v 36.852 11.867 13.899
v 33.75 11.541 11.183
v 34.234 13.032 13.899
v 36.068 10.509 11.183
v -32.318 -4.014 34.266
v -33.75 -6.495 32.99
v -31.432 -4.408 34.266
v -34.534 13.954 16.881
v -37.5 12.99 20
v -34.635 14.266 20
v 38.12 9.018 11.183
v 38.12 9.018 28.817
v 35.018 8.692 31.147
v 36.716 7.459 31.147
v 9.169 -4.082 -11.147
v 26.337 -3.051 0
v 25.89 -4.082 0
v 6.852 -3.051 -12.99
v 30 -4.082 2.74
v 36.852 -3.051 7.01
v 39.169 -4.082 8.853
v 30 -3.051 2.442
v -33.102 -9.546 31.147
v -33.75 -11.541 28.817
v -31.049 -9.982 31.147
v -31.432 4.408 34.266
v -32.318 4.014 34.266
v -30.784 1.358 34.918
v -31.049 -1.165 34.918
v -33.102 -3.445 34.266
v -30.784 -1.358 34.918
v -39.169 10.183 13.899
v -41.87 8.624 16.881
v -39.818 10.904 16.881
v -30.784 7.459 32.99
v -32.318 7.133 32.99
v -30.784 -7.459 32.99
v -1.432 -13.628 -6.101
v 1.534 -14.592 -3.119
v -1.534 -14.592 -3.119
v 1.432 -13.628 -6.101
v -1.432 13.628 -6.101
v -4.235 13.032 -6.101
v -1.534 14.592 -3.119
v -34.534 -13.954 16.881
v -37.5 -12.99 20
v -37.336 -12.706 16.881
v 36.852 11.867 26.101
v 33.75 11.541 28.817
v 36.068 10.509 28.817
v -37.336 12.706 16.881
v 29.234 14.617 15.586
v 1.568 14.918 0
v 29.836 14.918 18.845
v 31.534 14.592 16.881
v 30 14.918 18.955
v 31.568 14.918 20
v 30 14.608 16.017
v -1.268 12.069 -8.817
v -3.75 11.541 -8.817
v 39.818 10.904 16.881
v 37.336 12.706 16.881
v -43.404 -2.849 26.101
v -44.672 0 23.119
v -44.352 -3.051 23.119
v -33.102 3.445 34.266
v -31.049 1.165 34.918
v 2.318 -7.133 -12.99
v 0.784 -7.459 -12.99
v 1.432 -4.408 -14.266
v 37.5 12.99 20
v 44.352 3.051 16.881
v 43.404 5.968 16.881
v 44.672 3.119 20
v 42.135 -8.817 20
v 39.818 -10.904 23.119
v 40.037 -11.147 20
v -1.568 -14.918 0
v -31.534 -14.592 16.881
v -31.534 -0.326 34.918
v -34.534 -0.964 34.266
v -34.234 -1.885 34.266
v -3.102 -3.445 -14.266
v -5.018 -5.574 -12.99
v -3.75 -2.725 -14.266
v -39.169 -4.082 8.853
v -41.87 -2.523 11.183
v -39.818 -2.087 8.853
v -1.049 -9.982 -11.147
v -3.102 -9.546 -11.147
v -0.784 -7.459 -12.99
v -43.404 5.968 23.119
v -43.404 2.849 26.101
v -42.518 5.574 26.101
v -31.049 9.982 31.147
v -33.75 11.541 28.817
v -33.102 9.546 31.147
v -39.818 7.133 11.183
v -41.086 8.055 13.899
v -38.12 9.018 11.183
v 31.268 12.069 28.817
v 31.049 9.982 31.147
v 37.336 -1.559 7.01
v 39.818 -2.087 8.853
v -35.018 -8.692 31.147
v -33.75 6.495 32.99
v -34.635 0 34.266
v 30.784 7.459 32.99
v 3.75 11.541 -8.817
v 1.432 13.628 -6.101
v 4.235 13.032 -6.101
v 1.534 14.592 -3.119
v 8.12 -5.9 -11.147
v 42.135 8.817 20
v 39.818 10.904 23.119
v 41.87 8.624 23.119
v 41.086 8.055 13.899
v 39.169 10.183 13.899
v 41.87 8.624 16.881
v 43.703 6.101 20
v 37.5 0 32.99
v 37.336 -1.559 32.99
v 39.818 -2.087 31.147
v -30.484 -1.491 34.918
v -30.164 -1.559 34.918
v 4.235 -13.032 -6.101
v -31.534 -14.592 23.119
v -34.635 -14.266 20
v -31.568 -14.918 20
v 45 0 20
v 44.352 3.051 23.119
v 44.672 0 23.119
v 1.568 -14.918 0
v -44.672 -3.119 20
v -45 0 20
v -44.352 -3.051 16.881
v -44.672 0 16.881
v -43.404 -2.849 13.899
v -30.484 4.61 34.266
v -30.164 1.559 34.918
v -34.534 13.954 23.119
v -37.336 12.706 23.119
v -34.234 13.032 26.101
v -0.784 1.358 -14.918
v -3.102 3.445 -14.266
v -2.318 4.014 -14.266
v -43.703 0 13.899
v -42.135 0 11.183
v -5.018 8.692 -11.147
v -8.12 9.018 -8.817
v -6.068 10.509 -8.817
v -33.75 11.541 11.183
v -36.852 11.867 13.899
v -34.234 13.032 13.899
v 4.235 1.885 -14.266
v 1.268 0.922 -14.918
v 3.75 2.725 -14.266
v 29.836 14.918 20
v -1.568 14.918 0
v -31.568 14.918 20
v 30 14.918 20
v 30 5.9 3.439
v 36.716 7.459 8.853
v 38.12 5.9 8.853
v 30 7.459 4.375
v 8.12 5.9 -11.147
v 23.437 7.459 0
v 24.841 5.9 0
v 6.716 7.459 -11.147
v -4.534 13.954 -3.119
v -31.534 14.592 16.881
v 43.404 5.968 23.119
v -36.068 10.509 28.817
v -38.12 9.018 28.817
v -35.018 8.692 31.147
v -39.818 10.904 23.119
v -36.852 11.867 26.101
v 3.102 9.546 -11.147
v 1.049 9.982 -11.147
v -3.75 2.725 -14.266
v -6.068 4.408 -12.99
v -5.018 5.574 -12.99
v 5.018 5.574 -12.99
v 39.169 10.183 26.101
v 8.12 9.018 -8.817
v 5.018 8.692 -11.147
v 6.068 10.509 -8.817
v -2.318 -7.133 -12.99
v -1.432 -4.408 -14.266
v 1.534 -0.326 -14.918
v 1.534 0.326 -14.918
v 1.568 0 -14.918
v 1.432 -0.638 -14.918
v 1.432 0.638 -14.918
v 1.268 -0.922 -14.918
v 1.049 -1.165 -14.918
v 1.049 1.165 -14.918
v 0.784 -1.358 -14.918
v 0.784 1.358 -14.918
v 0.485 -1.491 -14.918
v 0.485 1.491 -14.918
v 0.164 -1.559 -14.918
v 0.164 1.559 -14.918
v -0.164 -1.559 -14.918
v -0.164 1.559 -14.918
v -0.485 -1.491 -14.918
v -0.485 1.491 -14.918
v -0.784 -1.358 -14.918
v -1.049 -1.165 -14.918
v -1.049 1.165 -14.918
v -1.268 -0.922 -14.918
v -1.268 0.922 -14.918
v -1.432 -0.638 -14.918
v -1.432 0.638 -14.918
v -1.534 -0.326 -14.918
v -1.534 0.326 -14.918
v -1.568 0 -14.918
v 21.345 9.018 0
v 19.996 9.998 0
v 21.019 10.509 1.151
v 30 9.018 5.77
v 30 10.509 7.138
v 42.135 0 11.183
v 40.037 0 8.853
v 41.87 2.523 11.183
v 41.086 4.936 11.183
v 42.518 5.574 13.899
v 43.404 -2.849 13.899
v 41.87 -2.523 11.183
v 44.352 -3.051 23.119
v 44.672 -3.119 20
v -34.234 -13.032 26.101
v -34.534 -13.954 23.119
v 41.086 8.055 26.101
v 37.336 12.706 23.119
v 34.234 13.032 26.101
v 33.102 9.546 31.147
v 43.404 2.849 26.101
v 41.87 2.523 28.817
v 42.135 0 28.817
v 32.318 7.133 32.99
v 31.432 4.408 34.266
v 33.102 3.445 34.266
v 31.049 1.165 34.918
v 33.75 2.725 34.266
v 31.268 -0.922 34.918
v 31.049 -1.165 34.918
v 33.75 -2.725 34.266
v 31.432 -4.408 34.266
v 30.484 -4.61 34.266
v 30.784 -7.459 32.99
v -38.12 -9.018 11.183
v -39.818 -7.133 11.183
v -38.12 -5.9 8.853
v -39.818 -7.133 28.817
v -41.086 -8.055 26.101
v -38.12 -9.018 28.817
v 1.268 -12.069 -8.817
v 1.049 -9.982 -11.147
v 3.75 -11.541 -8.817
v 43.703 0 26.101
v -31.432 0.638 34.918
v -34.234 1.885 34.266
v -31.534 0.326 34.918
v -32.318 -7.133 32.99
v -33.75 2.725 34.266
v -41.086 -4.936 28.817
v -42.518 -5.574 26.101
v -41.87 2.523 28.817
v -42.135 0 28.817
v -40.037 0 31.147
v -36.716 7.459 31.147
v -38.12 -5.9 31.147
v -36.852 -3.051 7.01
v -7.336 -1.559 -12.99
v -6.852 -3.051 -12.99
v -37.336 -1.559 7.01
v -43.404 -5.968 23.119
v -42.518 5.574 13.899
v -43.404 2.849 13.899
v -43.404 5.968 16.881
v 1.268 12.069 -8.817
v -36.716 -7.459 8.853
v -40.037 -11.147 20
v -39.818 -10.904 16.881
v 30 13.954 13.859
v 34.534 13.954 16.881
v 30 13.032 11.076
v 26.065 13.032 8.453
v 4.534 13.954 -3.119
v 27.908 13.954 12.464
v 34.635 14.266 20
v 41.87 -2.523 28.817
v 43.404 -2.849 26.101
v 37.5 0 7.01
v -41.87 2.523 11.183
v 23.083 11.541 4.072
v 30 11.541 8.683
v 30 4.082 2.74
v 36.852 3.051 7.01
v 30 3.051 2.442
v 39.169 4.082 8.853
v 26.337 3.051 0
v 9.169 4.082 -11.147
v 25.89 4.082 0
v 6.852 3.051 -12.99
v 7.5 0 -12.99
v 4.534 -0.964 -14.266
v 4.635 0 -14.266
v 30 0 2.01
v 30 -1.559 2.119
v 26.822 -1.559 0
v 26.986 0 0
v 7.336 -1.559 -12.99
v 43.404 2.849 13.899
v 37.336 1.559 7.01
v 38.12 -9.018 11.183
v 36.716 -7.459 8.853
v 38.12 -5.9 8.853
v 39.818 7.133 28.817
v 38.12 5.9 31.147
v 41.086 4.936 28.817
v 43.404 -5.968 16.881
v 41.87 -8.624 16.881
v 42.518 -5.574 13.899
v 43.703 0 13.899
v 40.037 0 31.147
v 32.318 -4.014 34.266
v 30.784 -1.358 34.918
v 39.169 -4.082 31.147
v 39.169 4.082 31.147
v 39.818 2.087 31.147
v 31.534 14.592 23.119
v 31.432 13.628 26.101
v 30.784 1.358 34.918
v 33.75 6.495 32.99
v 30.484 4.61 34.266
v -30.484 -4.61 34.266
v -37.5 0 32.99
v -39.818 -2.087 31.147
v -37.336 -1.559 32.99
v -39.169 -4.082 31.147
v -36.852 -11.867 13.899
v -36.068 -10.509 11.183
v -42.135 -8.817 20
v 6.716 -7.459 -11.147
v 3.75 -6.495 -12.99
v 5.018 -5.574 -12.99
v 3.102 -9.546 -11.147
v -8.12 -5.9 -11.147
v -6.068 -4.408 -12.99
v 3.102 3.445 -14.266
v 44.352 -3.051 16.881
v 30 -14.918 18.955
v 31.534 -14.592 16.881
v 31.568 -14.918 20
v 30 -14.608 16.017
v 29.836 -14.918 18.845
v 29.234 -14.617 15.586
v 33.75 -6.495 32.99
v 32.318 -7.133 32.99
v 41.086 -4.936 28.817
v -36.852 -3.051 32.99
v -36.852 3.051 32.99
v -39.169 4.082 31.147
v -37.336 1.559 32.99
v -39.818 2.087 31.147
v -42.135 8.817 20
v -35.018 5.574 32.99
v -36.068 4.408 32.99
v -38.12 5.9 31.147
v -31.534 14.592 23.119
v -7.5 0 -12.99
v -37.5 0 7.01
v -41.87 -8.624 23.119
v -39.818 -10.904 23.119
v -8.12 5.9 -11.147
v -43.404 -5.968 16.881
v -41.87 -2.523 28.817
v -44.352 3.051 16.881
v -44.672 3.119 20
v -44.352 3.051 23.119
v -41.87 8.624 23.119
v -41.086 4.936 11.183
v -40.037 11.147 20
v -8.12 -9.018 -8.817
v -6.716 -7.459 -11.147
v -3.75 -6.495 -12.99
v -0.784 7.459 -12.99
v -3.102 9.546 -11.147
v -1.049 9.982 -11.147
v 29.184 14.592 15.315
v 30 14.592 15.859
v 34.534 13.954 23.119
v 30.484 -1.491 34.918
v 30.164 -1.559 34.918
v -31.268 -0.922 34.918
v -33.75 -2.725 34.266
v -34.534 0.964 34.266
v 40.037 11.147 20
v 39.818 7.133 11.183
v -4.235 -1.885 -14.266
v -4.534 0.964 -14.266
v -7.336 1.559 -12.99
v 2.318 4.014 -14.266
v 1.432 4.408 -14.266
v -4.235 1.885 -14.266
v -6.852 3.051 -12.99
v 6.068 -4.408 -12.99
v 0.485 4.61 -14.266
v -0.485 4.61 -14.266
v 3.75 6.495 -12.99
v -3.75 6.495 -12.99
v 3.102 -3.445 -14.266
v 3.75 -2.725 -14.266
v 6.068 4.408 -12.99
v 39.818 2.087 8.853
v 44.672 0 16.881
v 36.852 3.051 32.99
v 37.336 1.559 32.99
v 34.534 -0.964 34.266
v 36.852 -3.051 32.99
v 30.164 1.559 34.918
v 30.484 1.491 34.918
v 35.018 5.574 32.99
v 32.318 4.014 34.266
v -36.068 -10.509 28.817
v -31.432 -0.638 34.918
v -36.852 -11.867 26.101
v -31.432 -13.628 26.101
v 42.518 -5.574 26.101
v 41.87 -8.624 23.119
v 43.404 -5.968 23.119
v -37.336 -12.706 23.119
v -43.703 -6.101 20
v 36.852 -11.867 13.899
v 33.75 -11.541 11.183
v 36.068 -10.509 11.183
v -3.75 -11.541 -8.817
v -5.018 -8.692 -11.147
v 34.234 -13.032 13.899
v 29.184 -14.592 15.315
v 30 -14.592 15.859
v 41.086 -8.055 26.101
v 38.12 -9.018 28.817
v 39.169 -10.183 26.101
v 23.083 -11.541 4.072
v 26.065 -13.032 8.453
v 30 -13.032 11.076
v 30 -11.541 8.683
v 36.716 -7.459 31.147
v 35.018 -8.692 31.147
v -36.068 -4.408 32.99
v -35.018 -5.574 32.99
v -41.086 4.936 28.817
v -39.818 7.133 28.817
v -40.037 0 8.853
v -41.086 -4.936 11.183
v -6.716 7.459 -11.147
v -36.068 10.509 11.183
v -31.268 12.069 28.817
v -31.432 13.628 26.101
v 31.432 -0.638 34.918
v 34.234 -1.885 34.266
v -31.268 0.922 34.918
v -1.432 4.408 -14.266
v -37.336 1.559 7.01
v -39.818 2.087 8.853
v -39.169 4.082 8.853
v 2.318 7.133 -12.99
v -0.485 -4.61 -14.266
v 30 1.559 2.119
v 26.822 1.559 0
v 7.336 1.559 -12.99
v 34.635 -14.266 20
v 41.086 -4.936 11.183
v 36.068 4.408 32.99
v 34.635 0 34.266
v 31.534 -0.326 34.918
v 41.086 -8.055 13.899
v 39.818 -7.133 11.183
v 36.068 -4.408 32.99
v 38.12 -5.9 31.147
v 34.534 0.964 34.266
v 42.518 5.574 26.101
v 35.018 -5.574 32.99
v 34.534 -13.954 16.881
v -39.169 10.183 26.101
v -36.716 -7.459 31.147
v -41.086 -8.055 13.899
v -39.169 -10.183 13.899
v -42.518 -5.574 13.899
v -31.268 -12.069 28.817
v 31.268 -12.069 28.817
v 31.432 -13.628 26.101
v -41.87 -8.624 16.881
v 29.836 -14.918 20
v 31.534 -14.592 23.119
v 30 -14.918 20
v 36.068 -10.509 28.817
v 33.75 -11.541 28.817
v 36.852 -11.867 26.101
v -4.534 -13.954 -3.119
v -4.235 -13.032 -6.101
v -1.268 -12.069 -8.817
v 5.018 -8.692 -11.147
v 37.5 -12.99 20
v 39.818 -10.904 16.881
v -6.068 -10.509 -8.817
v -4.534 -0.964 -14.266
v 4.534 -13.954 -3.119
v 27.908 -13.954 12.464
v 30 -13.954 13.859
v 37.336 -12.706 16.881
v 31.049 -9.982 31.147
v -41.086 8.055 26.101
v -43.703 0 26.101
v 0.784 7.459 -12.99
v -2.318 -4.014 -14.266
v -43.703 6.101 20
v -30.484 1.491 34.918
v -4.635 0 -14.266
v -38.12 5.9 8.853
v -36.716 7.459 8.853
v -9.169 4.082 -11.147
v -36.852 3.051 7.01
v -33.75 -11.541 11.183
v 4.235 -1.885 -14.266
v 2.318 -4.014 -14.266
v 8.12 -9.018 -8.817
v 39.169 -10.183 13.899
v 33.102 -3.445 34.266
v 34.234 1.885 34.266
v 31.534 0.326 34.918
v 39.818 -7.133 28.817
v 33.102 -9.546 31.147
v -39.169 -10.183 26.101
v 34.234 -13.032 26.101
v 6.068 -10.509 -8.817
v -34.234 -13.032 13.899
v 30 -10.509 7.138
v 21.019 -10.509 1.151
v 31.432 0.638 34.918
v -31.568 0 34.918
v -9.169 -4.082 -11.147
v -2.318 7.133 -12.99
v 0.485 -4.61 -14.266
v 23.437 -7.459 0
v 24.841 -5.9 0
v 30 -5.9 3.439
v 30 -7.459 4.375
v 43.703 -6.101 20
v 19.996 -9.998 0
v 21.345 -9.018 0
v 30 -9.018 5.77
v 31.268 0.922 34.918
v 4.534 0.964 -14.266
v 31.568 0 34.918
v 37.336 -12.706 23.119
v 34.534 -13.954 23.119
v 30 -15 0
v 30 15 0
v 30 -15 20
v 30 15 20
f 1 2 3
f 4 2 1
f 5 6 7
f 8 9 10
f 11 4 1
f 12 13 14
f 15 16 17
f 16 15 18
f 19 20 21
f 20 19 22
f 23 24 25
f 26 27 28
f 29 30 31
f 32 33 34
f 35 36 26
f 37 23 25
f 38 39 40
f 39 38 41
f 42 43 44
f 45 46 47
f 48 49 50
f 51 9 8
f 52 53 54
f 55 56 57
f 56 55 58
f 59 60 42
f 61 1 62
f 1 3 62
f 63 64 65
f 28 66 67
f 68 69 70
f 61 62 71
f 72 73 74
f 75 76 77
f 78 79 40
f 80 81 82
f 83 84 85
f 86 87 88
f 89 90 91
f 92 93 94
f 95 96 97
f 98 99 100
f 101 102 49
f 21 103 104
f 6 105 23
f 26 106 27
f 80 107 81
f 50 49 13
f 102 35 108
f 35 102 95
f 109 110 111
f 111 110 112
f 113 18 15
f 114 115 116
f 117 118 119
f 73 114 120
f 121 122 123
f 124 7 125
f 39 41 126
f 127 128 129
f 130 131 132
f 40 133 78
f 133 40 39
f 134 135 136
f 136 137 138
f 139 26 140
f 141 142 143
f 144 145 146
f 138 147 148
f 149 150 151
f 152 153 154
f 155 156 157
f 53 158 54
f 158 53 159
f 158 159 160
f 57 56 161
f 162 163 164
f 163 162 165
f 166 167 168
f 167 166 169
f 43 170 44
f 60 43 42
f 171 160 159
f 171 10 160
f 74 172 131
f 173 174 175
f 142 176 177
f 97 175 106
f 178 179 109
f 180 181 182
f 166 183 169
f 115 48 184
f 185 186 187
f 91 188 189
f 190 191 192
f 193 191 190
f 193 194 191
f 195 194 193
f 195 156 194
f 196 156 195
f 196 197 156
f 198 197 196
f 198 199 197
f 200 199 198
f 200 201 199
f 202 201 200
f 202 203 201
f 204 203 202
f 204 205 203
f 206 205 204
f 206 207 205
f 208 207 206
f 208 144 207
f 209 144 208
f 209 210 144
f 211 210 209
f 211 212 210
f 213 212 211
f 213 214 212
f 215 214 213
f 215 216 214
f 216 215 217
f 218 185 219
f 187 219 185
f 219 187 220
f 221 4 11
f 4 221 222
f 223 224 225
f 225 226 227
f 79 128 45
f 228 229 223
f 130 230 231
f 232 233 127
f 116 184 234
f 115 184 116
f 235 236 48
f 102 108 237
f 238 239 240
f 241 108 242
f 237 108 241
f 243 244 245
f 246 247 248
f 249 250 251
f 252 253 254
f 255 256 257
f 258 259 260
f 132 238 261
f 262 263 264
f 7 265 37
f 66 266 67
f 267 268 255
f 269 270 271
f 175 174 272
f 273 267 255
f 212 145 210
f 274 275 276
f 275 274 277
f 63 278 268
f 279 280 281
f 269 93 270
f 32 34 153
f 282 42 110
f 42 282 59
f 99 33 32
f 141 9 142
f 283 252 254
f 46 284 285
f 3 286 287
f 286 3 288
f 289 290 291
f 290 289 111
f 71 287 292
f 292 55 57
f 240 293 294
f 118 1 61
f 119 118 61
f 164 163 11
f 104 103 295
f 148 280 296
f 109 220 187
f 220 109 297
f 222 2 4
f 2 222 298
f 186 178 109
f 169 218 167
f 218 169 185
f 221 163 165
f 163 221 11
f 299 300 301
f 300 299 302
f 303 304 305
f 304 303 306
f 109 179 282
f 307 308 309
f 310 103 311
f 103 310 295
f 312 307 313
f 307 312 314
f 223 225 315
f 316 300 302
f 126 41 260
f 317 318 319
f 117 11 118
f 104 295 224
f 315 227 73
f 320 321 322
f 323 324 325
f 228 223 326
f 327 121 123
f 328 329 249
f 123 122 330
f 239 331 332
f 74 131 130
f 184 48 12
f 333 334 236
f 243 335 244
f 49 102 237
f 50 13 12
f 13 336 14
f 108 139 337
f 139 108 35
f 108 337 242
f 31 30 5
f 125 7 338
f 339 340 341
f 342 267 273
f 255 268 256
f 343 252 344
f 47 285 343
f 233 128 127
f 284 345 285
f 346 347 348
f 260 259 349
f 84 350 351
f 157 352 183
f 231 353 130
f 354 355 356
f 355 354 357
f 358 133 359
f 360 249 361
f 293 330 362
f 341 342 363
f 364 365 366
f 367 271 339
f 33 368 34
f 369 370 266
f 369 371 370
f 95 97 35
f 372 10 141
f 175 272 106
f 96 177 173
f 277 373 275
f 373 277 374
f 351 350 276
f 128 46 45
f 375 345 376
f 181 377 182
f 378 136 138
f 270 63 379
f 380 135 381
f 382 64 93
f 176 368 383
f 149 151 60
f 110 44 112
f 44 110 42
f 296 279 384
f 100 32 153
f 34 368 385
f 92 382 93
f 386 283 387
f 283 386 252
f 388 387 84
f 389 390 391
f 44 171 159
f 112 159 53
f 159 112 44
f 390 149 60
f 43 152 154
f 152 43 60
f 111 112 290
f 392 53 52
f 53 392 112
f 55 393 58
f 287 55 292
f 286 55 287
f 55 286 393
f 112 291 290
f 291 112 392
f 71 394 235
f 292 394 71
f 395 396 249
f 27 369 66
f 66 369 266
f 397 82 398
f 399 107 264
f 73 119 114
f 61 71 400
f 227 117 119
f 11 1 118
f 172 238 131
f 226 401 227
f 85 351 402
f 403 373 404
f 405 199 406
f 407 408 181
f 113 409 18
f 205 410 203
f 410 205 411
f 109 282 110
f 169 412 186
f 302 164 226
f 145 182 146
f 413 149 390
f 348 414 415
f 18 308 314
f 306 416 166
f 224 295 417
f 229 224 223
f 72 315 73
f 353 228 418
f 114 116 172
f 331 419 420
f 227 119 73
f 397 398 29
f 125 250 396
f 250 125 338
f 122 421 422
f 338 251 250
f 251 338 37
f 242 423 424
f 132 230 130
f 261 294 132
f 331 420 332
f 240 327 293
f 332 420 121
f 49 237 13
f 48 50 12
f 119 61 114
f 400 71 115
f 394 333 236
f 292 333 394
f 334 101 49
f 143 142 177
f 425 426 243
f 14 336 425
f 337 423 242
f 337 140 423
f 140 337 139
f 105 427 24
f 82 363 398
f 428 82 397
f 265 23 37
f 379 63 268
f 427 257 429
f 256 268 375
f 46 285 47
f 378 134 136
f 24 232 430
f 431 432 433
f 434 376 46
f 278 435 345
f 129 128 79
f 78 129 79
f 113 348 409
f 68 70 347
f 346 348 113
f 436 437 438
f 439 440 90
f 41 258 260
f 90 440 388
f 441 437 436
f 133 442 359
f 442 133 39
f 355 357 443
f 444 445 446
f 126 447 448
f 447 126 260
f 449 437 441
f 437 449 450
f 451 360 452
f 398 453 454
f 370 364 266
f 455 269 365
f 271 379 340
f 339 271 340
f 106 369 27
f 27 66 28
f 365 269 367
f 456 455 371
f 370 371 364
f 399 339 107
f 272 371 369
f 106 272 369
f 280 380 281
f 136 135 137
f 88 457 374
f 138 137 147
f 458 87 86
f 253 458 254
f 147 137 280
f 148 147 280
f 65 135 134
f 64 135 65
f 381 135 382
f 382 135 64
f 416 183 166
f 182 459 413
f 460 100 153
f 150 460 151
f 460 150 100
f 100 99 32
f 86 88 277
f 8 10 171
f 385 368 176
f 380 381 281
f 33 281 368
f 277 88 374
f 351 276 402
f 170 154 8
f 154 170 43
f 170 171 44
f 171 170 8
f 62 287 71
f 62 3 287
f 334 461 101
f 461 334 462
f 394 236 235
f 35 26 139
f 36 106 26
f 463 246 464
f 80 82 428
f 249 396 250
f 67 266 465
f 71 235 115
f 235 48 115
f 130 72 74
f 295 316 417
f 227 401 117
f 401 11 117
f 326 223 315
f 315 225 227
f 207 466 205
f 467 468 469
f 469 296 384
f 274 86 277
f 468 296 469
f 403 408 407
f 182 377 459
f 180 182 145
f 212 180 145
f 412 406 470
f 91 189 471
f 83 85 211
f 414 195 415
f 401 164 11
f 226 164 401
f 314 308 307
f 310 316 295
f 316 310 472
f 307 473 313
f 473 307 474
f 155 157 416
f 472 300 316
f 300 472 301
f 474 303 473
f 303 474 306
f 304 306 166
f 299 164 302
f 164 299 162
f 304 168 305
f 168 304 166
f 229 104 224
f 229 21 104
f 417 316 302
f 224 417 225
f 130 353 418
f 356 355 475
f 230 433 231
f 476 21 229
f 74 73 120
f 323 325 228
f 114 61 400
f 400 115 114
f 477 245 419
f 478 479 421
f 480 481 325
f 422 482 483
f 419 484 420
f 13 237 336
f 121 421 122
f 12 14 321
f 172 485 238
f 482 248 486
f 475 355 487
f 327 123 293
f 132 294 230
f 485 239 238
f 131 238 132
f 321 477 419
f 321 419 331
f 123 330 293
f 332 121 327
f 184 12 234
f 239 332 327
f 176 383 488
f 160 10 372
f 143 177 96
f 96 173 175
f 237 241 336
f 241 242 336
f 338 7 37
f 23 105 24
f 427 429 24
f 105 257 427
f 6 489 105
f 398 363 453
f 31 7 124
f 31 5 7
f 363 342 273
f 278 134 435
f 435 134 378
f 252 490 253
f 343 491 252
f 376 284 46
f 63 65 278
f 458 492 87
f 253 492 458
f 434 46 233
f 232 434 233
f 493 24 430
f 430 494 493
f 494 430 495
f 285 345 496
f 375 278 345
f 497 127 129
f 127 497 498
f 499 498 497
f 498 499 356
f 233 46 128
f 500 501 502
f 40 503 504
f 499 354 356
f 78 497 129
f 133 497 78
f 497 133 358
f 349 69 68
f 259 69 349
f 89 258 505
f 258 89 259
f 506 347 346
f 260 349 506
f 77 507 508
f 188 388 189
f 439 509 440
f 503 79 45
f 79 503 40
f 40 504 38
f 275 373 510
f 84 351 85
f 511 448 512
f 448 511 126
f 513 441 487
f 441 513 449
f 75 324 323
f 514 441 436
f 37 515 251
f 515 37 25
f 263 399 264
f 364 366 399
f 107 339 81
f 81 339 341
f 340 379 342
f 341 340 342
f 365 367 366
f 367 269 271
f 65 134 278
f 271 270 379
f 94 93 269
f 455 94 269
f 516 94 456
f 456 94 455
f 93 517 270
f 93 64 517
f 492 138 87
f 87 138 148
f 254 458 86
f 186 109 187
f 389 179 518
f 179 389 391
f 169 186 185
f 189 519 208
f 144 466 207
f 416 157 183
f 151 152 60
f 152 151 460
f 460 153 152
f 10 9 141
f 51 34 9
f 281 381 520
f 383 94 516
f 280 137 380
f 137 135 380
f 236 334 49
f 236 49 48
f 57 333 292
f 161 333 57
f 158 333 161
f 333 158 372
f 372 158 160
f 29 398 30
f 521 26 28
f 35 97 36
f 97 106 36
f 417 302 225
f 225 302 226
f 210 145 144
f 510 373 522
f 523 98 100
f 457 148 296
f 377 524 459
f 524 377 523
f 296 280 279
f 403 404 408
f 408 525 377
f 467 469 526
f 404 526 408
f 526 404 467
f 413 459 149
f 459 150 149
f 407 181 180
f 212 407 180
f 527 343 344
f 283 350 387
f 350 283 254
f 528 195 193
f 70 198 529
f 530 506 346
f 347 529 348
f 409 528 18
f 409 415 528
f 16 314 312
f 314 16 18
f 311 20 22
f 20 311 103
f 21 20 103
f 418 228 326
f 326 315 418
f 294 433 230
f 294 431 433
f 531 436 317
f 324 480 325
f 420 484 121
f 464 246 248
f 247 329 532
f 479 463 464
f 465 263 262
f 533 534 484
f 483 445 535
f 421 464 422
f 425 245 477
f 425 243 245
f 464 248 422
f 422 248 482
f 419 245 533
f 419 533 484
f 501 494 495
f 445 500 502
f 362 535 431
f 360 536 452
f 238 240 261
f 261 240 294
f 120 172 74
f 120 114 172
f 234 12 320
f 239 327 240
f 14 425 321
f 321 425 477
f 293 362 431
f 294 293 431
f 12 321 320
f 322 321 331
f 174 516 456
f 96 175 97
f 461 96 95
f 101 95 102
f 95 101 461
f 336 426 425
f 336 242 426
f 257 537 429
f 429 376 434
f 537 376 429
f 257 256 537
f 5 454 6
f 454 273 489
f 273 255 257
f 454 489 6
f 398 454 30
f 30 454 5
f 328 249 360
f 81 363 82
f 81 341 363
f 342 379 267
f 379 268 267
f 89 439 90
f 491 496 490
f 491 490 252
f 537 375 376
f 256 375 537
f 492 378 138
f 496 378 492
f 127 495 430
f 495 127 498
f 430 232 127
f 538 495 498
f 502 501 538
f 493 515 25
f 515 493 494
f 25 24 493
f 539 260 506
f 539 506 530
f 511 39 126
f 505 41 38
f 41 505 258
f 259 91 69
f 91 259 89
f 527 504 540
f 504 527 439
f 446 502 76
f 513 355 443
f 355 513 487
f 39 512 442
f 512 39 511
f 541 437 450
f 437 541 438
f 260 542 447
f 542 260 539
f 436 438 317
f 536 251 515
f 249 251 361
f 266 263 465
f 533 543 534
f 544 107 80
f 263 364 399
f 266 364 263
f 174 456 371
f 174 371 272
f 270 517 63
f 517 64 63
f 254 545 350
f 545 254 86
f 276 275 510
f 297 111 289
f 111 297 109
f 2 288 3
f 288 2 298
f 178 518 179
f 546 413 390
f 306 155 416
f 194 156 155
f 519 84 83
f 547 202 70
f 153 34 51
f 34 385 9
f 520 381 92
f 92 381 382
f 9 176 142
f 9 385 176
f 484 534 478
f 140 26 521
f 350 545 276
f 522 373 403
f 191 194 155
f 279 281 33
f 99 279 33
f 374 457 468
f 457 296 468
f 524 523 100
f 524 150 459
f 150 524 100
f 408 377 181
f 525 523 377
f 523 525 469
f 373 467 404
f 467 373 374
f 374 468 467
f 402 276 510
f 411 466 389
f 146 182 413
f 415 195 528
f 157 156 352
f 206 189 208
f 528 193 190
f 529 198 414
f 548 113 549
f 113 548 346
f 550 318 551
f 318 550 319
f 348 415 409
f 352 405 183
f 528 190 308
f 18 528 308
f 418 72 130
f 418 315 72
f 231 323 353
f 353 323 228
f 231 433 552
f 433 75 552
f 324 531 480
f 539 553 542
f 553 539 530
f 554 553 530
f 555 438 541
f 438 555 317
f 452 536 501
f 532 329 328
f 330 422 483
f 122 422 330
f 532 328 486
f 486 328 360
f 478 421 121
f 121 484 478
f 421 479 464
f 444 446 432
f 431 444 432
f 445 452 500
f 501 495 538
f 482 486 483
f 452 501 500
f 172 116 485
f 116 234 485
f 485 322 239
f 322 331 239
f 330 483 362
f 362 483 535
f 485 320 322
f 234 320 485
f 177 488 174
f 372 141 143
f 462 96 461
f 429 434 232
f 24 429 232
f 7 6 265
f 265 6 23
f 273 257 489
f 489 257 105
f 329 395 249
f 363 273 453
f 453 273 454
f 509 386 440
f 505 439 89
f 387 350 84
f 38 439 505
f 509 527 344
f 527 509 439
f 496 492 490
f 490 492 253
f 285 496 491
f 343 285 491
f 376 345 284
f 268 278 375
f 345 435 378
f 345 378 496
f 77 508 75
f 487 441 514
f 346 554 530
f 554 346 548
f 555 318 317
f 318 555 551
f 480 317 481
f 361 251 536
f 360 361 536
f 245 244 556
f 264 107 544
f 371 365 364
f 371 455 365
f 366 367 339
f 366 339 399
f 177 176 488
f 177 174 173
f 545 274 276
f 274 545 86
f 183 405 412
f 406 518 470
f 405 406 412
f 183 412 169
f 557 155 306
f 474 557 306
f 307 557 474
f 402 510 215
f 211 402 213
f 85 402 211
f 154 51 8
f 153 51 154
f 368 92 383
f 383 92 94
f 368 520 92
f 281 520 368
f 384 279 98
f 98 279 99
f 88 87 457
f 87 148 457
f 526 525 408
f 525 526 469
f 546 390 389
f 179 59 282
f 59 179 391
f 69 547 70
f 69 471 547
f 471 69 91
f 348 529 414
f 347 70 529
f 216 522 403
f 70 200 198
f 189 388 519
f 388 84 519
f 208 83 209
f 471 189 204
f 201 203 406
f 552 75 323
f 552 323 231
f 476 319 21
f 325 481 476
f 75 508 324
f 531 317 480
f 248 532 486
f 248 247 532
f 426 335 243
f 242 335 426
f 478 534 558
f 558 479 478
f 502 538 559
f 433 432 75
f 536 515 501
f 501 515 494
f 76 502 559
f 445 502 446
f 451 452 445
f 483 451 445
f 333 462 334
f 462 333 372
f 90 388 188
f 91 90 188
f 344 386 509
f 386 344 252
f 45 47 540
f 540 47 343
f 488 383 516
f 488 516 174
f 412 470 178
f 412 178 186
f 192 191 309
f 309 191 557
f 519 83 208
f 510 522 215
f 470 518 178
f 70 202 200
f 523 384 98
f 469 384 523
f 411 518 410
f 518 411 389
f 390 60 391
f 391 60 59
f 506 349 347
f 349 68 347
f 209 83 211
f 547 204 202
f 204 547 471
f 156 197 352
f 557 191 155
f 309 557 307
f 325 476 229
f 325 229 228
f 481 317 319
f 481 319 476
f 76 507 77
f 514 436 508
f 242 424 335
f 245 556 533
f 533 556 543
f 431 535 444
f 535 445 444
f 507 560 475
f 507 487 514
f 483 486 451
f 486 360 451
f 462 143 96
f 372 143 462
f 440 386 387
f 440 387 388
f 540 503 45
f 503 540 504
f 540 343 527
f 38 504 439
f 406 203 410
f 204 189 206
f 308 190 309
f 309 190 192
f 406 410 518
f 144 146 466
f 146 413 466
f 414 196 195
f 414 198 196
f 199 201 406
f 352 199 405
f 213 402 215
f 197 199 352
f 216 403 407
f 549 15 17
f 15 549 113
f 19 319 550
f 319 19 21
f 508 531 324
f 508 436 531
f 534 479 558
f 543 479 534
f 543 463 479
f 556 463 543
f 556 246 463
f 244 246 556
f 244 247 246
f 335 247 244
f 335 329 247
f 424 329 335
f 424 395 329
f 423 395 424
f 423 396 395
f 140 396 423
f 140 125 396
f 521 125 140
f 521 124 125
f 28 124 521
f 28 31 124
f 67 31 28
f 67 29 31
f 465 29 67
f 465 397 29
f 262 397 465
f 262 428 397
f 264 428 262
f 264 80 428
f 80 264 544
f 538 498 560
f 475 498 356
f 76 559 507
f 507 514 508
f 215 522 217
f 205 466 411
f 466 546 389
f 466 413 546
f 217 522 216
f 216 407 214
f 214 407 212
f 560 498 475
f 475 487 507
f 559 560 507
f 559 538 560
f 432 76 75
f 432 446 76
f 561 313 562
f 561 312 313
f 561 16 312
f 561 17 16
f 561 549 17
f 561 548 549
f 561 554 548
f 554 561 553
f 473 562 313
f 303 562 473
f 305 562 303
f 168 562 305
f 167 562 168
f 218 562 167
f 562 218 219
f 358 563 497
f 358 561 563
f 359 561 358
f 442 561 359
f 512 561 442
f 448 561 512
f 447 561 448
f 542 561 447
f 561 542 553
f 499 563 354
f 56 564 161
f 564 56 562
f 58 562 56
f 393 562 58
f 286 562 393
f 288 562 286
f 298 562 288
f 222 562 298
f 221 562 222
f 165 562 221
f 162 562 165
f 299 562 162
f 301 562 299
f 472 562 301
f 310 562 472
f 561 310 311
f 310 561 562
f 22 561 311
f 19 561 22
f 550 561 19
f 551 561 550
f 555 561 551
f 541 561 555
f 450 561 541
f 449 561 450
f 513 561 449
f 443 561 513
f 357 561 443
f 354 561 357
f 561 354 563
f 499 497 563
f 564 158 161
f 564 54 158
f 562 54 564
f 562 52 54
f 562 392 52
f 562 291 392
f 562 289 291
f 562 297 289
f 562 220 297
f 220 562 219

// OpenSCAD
module t(height = 10, width = 50, depth = 20, rounding = 2) {
  hull() {
    translate([0, 0, 0])
    sphere(r = depth/2);
    translate([width/2, 0, height])
    sphere(r = depth/2);
    translate([-width/2, 0, height])
    sphere(r = depth/2);
  }
  
  linear_extrude(height = height, convexity = 10)
  polygon(points = [
    [0,0],
    [width/2, depth/2],
    [width/2, -depth/2]
  ]);
  
  difference() {
      linear_extrude(height = height, convexity = 10)
      polygon(points = [
        [0,0],
        [width/2, depth/2],
        [width/2, -depth/2]
      ]);
  }
}

t(height = 20, width = 60, depth = 30, rounding = 2);
